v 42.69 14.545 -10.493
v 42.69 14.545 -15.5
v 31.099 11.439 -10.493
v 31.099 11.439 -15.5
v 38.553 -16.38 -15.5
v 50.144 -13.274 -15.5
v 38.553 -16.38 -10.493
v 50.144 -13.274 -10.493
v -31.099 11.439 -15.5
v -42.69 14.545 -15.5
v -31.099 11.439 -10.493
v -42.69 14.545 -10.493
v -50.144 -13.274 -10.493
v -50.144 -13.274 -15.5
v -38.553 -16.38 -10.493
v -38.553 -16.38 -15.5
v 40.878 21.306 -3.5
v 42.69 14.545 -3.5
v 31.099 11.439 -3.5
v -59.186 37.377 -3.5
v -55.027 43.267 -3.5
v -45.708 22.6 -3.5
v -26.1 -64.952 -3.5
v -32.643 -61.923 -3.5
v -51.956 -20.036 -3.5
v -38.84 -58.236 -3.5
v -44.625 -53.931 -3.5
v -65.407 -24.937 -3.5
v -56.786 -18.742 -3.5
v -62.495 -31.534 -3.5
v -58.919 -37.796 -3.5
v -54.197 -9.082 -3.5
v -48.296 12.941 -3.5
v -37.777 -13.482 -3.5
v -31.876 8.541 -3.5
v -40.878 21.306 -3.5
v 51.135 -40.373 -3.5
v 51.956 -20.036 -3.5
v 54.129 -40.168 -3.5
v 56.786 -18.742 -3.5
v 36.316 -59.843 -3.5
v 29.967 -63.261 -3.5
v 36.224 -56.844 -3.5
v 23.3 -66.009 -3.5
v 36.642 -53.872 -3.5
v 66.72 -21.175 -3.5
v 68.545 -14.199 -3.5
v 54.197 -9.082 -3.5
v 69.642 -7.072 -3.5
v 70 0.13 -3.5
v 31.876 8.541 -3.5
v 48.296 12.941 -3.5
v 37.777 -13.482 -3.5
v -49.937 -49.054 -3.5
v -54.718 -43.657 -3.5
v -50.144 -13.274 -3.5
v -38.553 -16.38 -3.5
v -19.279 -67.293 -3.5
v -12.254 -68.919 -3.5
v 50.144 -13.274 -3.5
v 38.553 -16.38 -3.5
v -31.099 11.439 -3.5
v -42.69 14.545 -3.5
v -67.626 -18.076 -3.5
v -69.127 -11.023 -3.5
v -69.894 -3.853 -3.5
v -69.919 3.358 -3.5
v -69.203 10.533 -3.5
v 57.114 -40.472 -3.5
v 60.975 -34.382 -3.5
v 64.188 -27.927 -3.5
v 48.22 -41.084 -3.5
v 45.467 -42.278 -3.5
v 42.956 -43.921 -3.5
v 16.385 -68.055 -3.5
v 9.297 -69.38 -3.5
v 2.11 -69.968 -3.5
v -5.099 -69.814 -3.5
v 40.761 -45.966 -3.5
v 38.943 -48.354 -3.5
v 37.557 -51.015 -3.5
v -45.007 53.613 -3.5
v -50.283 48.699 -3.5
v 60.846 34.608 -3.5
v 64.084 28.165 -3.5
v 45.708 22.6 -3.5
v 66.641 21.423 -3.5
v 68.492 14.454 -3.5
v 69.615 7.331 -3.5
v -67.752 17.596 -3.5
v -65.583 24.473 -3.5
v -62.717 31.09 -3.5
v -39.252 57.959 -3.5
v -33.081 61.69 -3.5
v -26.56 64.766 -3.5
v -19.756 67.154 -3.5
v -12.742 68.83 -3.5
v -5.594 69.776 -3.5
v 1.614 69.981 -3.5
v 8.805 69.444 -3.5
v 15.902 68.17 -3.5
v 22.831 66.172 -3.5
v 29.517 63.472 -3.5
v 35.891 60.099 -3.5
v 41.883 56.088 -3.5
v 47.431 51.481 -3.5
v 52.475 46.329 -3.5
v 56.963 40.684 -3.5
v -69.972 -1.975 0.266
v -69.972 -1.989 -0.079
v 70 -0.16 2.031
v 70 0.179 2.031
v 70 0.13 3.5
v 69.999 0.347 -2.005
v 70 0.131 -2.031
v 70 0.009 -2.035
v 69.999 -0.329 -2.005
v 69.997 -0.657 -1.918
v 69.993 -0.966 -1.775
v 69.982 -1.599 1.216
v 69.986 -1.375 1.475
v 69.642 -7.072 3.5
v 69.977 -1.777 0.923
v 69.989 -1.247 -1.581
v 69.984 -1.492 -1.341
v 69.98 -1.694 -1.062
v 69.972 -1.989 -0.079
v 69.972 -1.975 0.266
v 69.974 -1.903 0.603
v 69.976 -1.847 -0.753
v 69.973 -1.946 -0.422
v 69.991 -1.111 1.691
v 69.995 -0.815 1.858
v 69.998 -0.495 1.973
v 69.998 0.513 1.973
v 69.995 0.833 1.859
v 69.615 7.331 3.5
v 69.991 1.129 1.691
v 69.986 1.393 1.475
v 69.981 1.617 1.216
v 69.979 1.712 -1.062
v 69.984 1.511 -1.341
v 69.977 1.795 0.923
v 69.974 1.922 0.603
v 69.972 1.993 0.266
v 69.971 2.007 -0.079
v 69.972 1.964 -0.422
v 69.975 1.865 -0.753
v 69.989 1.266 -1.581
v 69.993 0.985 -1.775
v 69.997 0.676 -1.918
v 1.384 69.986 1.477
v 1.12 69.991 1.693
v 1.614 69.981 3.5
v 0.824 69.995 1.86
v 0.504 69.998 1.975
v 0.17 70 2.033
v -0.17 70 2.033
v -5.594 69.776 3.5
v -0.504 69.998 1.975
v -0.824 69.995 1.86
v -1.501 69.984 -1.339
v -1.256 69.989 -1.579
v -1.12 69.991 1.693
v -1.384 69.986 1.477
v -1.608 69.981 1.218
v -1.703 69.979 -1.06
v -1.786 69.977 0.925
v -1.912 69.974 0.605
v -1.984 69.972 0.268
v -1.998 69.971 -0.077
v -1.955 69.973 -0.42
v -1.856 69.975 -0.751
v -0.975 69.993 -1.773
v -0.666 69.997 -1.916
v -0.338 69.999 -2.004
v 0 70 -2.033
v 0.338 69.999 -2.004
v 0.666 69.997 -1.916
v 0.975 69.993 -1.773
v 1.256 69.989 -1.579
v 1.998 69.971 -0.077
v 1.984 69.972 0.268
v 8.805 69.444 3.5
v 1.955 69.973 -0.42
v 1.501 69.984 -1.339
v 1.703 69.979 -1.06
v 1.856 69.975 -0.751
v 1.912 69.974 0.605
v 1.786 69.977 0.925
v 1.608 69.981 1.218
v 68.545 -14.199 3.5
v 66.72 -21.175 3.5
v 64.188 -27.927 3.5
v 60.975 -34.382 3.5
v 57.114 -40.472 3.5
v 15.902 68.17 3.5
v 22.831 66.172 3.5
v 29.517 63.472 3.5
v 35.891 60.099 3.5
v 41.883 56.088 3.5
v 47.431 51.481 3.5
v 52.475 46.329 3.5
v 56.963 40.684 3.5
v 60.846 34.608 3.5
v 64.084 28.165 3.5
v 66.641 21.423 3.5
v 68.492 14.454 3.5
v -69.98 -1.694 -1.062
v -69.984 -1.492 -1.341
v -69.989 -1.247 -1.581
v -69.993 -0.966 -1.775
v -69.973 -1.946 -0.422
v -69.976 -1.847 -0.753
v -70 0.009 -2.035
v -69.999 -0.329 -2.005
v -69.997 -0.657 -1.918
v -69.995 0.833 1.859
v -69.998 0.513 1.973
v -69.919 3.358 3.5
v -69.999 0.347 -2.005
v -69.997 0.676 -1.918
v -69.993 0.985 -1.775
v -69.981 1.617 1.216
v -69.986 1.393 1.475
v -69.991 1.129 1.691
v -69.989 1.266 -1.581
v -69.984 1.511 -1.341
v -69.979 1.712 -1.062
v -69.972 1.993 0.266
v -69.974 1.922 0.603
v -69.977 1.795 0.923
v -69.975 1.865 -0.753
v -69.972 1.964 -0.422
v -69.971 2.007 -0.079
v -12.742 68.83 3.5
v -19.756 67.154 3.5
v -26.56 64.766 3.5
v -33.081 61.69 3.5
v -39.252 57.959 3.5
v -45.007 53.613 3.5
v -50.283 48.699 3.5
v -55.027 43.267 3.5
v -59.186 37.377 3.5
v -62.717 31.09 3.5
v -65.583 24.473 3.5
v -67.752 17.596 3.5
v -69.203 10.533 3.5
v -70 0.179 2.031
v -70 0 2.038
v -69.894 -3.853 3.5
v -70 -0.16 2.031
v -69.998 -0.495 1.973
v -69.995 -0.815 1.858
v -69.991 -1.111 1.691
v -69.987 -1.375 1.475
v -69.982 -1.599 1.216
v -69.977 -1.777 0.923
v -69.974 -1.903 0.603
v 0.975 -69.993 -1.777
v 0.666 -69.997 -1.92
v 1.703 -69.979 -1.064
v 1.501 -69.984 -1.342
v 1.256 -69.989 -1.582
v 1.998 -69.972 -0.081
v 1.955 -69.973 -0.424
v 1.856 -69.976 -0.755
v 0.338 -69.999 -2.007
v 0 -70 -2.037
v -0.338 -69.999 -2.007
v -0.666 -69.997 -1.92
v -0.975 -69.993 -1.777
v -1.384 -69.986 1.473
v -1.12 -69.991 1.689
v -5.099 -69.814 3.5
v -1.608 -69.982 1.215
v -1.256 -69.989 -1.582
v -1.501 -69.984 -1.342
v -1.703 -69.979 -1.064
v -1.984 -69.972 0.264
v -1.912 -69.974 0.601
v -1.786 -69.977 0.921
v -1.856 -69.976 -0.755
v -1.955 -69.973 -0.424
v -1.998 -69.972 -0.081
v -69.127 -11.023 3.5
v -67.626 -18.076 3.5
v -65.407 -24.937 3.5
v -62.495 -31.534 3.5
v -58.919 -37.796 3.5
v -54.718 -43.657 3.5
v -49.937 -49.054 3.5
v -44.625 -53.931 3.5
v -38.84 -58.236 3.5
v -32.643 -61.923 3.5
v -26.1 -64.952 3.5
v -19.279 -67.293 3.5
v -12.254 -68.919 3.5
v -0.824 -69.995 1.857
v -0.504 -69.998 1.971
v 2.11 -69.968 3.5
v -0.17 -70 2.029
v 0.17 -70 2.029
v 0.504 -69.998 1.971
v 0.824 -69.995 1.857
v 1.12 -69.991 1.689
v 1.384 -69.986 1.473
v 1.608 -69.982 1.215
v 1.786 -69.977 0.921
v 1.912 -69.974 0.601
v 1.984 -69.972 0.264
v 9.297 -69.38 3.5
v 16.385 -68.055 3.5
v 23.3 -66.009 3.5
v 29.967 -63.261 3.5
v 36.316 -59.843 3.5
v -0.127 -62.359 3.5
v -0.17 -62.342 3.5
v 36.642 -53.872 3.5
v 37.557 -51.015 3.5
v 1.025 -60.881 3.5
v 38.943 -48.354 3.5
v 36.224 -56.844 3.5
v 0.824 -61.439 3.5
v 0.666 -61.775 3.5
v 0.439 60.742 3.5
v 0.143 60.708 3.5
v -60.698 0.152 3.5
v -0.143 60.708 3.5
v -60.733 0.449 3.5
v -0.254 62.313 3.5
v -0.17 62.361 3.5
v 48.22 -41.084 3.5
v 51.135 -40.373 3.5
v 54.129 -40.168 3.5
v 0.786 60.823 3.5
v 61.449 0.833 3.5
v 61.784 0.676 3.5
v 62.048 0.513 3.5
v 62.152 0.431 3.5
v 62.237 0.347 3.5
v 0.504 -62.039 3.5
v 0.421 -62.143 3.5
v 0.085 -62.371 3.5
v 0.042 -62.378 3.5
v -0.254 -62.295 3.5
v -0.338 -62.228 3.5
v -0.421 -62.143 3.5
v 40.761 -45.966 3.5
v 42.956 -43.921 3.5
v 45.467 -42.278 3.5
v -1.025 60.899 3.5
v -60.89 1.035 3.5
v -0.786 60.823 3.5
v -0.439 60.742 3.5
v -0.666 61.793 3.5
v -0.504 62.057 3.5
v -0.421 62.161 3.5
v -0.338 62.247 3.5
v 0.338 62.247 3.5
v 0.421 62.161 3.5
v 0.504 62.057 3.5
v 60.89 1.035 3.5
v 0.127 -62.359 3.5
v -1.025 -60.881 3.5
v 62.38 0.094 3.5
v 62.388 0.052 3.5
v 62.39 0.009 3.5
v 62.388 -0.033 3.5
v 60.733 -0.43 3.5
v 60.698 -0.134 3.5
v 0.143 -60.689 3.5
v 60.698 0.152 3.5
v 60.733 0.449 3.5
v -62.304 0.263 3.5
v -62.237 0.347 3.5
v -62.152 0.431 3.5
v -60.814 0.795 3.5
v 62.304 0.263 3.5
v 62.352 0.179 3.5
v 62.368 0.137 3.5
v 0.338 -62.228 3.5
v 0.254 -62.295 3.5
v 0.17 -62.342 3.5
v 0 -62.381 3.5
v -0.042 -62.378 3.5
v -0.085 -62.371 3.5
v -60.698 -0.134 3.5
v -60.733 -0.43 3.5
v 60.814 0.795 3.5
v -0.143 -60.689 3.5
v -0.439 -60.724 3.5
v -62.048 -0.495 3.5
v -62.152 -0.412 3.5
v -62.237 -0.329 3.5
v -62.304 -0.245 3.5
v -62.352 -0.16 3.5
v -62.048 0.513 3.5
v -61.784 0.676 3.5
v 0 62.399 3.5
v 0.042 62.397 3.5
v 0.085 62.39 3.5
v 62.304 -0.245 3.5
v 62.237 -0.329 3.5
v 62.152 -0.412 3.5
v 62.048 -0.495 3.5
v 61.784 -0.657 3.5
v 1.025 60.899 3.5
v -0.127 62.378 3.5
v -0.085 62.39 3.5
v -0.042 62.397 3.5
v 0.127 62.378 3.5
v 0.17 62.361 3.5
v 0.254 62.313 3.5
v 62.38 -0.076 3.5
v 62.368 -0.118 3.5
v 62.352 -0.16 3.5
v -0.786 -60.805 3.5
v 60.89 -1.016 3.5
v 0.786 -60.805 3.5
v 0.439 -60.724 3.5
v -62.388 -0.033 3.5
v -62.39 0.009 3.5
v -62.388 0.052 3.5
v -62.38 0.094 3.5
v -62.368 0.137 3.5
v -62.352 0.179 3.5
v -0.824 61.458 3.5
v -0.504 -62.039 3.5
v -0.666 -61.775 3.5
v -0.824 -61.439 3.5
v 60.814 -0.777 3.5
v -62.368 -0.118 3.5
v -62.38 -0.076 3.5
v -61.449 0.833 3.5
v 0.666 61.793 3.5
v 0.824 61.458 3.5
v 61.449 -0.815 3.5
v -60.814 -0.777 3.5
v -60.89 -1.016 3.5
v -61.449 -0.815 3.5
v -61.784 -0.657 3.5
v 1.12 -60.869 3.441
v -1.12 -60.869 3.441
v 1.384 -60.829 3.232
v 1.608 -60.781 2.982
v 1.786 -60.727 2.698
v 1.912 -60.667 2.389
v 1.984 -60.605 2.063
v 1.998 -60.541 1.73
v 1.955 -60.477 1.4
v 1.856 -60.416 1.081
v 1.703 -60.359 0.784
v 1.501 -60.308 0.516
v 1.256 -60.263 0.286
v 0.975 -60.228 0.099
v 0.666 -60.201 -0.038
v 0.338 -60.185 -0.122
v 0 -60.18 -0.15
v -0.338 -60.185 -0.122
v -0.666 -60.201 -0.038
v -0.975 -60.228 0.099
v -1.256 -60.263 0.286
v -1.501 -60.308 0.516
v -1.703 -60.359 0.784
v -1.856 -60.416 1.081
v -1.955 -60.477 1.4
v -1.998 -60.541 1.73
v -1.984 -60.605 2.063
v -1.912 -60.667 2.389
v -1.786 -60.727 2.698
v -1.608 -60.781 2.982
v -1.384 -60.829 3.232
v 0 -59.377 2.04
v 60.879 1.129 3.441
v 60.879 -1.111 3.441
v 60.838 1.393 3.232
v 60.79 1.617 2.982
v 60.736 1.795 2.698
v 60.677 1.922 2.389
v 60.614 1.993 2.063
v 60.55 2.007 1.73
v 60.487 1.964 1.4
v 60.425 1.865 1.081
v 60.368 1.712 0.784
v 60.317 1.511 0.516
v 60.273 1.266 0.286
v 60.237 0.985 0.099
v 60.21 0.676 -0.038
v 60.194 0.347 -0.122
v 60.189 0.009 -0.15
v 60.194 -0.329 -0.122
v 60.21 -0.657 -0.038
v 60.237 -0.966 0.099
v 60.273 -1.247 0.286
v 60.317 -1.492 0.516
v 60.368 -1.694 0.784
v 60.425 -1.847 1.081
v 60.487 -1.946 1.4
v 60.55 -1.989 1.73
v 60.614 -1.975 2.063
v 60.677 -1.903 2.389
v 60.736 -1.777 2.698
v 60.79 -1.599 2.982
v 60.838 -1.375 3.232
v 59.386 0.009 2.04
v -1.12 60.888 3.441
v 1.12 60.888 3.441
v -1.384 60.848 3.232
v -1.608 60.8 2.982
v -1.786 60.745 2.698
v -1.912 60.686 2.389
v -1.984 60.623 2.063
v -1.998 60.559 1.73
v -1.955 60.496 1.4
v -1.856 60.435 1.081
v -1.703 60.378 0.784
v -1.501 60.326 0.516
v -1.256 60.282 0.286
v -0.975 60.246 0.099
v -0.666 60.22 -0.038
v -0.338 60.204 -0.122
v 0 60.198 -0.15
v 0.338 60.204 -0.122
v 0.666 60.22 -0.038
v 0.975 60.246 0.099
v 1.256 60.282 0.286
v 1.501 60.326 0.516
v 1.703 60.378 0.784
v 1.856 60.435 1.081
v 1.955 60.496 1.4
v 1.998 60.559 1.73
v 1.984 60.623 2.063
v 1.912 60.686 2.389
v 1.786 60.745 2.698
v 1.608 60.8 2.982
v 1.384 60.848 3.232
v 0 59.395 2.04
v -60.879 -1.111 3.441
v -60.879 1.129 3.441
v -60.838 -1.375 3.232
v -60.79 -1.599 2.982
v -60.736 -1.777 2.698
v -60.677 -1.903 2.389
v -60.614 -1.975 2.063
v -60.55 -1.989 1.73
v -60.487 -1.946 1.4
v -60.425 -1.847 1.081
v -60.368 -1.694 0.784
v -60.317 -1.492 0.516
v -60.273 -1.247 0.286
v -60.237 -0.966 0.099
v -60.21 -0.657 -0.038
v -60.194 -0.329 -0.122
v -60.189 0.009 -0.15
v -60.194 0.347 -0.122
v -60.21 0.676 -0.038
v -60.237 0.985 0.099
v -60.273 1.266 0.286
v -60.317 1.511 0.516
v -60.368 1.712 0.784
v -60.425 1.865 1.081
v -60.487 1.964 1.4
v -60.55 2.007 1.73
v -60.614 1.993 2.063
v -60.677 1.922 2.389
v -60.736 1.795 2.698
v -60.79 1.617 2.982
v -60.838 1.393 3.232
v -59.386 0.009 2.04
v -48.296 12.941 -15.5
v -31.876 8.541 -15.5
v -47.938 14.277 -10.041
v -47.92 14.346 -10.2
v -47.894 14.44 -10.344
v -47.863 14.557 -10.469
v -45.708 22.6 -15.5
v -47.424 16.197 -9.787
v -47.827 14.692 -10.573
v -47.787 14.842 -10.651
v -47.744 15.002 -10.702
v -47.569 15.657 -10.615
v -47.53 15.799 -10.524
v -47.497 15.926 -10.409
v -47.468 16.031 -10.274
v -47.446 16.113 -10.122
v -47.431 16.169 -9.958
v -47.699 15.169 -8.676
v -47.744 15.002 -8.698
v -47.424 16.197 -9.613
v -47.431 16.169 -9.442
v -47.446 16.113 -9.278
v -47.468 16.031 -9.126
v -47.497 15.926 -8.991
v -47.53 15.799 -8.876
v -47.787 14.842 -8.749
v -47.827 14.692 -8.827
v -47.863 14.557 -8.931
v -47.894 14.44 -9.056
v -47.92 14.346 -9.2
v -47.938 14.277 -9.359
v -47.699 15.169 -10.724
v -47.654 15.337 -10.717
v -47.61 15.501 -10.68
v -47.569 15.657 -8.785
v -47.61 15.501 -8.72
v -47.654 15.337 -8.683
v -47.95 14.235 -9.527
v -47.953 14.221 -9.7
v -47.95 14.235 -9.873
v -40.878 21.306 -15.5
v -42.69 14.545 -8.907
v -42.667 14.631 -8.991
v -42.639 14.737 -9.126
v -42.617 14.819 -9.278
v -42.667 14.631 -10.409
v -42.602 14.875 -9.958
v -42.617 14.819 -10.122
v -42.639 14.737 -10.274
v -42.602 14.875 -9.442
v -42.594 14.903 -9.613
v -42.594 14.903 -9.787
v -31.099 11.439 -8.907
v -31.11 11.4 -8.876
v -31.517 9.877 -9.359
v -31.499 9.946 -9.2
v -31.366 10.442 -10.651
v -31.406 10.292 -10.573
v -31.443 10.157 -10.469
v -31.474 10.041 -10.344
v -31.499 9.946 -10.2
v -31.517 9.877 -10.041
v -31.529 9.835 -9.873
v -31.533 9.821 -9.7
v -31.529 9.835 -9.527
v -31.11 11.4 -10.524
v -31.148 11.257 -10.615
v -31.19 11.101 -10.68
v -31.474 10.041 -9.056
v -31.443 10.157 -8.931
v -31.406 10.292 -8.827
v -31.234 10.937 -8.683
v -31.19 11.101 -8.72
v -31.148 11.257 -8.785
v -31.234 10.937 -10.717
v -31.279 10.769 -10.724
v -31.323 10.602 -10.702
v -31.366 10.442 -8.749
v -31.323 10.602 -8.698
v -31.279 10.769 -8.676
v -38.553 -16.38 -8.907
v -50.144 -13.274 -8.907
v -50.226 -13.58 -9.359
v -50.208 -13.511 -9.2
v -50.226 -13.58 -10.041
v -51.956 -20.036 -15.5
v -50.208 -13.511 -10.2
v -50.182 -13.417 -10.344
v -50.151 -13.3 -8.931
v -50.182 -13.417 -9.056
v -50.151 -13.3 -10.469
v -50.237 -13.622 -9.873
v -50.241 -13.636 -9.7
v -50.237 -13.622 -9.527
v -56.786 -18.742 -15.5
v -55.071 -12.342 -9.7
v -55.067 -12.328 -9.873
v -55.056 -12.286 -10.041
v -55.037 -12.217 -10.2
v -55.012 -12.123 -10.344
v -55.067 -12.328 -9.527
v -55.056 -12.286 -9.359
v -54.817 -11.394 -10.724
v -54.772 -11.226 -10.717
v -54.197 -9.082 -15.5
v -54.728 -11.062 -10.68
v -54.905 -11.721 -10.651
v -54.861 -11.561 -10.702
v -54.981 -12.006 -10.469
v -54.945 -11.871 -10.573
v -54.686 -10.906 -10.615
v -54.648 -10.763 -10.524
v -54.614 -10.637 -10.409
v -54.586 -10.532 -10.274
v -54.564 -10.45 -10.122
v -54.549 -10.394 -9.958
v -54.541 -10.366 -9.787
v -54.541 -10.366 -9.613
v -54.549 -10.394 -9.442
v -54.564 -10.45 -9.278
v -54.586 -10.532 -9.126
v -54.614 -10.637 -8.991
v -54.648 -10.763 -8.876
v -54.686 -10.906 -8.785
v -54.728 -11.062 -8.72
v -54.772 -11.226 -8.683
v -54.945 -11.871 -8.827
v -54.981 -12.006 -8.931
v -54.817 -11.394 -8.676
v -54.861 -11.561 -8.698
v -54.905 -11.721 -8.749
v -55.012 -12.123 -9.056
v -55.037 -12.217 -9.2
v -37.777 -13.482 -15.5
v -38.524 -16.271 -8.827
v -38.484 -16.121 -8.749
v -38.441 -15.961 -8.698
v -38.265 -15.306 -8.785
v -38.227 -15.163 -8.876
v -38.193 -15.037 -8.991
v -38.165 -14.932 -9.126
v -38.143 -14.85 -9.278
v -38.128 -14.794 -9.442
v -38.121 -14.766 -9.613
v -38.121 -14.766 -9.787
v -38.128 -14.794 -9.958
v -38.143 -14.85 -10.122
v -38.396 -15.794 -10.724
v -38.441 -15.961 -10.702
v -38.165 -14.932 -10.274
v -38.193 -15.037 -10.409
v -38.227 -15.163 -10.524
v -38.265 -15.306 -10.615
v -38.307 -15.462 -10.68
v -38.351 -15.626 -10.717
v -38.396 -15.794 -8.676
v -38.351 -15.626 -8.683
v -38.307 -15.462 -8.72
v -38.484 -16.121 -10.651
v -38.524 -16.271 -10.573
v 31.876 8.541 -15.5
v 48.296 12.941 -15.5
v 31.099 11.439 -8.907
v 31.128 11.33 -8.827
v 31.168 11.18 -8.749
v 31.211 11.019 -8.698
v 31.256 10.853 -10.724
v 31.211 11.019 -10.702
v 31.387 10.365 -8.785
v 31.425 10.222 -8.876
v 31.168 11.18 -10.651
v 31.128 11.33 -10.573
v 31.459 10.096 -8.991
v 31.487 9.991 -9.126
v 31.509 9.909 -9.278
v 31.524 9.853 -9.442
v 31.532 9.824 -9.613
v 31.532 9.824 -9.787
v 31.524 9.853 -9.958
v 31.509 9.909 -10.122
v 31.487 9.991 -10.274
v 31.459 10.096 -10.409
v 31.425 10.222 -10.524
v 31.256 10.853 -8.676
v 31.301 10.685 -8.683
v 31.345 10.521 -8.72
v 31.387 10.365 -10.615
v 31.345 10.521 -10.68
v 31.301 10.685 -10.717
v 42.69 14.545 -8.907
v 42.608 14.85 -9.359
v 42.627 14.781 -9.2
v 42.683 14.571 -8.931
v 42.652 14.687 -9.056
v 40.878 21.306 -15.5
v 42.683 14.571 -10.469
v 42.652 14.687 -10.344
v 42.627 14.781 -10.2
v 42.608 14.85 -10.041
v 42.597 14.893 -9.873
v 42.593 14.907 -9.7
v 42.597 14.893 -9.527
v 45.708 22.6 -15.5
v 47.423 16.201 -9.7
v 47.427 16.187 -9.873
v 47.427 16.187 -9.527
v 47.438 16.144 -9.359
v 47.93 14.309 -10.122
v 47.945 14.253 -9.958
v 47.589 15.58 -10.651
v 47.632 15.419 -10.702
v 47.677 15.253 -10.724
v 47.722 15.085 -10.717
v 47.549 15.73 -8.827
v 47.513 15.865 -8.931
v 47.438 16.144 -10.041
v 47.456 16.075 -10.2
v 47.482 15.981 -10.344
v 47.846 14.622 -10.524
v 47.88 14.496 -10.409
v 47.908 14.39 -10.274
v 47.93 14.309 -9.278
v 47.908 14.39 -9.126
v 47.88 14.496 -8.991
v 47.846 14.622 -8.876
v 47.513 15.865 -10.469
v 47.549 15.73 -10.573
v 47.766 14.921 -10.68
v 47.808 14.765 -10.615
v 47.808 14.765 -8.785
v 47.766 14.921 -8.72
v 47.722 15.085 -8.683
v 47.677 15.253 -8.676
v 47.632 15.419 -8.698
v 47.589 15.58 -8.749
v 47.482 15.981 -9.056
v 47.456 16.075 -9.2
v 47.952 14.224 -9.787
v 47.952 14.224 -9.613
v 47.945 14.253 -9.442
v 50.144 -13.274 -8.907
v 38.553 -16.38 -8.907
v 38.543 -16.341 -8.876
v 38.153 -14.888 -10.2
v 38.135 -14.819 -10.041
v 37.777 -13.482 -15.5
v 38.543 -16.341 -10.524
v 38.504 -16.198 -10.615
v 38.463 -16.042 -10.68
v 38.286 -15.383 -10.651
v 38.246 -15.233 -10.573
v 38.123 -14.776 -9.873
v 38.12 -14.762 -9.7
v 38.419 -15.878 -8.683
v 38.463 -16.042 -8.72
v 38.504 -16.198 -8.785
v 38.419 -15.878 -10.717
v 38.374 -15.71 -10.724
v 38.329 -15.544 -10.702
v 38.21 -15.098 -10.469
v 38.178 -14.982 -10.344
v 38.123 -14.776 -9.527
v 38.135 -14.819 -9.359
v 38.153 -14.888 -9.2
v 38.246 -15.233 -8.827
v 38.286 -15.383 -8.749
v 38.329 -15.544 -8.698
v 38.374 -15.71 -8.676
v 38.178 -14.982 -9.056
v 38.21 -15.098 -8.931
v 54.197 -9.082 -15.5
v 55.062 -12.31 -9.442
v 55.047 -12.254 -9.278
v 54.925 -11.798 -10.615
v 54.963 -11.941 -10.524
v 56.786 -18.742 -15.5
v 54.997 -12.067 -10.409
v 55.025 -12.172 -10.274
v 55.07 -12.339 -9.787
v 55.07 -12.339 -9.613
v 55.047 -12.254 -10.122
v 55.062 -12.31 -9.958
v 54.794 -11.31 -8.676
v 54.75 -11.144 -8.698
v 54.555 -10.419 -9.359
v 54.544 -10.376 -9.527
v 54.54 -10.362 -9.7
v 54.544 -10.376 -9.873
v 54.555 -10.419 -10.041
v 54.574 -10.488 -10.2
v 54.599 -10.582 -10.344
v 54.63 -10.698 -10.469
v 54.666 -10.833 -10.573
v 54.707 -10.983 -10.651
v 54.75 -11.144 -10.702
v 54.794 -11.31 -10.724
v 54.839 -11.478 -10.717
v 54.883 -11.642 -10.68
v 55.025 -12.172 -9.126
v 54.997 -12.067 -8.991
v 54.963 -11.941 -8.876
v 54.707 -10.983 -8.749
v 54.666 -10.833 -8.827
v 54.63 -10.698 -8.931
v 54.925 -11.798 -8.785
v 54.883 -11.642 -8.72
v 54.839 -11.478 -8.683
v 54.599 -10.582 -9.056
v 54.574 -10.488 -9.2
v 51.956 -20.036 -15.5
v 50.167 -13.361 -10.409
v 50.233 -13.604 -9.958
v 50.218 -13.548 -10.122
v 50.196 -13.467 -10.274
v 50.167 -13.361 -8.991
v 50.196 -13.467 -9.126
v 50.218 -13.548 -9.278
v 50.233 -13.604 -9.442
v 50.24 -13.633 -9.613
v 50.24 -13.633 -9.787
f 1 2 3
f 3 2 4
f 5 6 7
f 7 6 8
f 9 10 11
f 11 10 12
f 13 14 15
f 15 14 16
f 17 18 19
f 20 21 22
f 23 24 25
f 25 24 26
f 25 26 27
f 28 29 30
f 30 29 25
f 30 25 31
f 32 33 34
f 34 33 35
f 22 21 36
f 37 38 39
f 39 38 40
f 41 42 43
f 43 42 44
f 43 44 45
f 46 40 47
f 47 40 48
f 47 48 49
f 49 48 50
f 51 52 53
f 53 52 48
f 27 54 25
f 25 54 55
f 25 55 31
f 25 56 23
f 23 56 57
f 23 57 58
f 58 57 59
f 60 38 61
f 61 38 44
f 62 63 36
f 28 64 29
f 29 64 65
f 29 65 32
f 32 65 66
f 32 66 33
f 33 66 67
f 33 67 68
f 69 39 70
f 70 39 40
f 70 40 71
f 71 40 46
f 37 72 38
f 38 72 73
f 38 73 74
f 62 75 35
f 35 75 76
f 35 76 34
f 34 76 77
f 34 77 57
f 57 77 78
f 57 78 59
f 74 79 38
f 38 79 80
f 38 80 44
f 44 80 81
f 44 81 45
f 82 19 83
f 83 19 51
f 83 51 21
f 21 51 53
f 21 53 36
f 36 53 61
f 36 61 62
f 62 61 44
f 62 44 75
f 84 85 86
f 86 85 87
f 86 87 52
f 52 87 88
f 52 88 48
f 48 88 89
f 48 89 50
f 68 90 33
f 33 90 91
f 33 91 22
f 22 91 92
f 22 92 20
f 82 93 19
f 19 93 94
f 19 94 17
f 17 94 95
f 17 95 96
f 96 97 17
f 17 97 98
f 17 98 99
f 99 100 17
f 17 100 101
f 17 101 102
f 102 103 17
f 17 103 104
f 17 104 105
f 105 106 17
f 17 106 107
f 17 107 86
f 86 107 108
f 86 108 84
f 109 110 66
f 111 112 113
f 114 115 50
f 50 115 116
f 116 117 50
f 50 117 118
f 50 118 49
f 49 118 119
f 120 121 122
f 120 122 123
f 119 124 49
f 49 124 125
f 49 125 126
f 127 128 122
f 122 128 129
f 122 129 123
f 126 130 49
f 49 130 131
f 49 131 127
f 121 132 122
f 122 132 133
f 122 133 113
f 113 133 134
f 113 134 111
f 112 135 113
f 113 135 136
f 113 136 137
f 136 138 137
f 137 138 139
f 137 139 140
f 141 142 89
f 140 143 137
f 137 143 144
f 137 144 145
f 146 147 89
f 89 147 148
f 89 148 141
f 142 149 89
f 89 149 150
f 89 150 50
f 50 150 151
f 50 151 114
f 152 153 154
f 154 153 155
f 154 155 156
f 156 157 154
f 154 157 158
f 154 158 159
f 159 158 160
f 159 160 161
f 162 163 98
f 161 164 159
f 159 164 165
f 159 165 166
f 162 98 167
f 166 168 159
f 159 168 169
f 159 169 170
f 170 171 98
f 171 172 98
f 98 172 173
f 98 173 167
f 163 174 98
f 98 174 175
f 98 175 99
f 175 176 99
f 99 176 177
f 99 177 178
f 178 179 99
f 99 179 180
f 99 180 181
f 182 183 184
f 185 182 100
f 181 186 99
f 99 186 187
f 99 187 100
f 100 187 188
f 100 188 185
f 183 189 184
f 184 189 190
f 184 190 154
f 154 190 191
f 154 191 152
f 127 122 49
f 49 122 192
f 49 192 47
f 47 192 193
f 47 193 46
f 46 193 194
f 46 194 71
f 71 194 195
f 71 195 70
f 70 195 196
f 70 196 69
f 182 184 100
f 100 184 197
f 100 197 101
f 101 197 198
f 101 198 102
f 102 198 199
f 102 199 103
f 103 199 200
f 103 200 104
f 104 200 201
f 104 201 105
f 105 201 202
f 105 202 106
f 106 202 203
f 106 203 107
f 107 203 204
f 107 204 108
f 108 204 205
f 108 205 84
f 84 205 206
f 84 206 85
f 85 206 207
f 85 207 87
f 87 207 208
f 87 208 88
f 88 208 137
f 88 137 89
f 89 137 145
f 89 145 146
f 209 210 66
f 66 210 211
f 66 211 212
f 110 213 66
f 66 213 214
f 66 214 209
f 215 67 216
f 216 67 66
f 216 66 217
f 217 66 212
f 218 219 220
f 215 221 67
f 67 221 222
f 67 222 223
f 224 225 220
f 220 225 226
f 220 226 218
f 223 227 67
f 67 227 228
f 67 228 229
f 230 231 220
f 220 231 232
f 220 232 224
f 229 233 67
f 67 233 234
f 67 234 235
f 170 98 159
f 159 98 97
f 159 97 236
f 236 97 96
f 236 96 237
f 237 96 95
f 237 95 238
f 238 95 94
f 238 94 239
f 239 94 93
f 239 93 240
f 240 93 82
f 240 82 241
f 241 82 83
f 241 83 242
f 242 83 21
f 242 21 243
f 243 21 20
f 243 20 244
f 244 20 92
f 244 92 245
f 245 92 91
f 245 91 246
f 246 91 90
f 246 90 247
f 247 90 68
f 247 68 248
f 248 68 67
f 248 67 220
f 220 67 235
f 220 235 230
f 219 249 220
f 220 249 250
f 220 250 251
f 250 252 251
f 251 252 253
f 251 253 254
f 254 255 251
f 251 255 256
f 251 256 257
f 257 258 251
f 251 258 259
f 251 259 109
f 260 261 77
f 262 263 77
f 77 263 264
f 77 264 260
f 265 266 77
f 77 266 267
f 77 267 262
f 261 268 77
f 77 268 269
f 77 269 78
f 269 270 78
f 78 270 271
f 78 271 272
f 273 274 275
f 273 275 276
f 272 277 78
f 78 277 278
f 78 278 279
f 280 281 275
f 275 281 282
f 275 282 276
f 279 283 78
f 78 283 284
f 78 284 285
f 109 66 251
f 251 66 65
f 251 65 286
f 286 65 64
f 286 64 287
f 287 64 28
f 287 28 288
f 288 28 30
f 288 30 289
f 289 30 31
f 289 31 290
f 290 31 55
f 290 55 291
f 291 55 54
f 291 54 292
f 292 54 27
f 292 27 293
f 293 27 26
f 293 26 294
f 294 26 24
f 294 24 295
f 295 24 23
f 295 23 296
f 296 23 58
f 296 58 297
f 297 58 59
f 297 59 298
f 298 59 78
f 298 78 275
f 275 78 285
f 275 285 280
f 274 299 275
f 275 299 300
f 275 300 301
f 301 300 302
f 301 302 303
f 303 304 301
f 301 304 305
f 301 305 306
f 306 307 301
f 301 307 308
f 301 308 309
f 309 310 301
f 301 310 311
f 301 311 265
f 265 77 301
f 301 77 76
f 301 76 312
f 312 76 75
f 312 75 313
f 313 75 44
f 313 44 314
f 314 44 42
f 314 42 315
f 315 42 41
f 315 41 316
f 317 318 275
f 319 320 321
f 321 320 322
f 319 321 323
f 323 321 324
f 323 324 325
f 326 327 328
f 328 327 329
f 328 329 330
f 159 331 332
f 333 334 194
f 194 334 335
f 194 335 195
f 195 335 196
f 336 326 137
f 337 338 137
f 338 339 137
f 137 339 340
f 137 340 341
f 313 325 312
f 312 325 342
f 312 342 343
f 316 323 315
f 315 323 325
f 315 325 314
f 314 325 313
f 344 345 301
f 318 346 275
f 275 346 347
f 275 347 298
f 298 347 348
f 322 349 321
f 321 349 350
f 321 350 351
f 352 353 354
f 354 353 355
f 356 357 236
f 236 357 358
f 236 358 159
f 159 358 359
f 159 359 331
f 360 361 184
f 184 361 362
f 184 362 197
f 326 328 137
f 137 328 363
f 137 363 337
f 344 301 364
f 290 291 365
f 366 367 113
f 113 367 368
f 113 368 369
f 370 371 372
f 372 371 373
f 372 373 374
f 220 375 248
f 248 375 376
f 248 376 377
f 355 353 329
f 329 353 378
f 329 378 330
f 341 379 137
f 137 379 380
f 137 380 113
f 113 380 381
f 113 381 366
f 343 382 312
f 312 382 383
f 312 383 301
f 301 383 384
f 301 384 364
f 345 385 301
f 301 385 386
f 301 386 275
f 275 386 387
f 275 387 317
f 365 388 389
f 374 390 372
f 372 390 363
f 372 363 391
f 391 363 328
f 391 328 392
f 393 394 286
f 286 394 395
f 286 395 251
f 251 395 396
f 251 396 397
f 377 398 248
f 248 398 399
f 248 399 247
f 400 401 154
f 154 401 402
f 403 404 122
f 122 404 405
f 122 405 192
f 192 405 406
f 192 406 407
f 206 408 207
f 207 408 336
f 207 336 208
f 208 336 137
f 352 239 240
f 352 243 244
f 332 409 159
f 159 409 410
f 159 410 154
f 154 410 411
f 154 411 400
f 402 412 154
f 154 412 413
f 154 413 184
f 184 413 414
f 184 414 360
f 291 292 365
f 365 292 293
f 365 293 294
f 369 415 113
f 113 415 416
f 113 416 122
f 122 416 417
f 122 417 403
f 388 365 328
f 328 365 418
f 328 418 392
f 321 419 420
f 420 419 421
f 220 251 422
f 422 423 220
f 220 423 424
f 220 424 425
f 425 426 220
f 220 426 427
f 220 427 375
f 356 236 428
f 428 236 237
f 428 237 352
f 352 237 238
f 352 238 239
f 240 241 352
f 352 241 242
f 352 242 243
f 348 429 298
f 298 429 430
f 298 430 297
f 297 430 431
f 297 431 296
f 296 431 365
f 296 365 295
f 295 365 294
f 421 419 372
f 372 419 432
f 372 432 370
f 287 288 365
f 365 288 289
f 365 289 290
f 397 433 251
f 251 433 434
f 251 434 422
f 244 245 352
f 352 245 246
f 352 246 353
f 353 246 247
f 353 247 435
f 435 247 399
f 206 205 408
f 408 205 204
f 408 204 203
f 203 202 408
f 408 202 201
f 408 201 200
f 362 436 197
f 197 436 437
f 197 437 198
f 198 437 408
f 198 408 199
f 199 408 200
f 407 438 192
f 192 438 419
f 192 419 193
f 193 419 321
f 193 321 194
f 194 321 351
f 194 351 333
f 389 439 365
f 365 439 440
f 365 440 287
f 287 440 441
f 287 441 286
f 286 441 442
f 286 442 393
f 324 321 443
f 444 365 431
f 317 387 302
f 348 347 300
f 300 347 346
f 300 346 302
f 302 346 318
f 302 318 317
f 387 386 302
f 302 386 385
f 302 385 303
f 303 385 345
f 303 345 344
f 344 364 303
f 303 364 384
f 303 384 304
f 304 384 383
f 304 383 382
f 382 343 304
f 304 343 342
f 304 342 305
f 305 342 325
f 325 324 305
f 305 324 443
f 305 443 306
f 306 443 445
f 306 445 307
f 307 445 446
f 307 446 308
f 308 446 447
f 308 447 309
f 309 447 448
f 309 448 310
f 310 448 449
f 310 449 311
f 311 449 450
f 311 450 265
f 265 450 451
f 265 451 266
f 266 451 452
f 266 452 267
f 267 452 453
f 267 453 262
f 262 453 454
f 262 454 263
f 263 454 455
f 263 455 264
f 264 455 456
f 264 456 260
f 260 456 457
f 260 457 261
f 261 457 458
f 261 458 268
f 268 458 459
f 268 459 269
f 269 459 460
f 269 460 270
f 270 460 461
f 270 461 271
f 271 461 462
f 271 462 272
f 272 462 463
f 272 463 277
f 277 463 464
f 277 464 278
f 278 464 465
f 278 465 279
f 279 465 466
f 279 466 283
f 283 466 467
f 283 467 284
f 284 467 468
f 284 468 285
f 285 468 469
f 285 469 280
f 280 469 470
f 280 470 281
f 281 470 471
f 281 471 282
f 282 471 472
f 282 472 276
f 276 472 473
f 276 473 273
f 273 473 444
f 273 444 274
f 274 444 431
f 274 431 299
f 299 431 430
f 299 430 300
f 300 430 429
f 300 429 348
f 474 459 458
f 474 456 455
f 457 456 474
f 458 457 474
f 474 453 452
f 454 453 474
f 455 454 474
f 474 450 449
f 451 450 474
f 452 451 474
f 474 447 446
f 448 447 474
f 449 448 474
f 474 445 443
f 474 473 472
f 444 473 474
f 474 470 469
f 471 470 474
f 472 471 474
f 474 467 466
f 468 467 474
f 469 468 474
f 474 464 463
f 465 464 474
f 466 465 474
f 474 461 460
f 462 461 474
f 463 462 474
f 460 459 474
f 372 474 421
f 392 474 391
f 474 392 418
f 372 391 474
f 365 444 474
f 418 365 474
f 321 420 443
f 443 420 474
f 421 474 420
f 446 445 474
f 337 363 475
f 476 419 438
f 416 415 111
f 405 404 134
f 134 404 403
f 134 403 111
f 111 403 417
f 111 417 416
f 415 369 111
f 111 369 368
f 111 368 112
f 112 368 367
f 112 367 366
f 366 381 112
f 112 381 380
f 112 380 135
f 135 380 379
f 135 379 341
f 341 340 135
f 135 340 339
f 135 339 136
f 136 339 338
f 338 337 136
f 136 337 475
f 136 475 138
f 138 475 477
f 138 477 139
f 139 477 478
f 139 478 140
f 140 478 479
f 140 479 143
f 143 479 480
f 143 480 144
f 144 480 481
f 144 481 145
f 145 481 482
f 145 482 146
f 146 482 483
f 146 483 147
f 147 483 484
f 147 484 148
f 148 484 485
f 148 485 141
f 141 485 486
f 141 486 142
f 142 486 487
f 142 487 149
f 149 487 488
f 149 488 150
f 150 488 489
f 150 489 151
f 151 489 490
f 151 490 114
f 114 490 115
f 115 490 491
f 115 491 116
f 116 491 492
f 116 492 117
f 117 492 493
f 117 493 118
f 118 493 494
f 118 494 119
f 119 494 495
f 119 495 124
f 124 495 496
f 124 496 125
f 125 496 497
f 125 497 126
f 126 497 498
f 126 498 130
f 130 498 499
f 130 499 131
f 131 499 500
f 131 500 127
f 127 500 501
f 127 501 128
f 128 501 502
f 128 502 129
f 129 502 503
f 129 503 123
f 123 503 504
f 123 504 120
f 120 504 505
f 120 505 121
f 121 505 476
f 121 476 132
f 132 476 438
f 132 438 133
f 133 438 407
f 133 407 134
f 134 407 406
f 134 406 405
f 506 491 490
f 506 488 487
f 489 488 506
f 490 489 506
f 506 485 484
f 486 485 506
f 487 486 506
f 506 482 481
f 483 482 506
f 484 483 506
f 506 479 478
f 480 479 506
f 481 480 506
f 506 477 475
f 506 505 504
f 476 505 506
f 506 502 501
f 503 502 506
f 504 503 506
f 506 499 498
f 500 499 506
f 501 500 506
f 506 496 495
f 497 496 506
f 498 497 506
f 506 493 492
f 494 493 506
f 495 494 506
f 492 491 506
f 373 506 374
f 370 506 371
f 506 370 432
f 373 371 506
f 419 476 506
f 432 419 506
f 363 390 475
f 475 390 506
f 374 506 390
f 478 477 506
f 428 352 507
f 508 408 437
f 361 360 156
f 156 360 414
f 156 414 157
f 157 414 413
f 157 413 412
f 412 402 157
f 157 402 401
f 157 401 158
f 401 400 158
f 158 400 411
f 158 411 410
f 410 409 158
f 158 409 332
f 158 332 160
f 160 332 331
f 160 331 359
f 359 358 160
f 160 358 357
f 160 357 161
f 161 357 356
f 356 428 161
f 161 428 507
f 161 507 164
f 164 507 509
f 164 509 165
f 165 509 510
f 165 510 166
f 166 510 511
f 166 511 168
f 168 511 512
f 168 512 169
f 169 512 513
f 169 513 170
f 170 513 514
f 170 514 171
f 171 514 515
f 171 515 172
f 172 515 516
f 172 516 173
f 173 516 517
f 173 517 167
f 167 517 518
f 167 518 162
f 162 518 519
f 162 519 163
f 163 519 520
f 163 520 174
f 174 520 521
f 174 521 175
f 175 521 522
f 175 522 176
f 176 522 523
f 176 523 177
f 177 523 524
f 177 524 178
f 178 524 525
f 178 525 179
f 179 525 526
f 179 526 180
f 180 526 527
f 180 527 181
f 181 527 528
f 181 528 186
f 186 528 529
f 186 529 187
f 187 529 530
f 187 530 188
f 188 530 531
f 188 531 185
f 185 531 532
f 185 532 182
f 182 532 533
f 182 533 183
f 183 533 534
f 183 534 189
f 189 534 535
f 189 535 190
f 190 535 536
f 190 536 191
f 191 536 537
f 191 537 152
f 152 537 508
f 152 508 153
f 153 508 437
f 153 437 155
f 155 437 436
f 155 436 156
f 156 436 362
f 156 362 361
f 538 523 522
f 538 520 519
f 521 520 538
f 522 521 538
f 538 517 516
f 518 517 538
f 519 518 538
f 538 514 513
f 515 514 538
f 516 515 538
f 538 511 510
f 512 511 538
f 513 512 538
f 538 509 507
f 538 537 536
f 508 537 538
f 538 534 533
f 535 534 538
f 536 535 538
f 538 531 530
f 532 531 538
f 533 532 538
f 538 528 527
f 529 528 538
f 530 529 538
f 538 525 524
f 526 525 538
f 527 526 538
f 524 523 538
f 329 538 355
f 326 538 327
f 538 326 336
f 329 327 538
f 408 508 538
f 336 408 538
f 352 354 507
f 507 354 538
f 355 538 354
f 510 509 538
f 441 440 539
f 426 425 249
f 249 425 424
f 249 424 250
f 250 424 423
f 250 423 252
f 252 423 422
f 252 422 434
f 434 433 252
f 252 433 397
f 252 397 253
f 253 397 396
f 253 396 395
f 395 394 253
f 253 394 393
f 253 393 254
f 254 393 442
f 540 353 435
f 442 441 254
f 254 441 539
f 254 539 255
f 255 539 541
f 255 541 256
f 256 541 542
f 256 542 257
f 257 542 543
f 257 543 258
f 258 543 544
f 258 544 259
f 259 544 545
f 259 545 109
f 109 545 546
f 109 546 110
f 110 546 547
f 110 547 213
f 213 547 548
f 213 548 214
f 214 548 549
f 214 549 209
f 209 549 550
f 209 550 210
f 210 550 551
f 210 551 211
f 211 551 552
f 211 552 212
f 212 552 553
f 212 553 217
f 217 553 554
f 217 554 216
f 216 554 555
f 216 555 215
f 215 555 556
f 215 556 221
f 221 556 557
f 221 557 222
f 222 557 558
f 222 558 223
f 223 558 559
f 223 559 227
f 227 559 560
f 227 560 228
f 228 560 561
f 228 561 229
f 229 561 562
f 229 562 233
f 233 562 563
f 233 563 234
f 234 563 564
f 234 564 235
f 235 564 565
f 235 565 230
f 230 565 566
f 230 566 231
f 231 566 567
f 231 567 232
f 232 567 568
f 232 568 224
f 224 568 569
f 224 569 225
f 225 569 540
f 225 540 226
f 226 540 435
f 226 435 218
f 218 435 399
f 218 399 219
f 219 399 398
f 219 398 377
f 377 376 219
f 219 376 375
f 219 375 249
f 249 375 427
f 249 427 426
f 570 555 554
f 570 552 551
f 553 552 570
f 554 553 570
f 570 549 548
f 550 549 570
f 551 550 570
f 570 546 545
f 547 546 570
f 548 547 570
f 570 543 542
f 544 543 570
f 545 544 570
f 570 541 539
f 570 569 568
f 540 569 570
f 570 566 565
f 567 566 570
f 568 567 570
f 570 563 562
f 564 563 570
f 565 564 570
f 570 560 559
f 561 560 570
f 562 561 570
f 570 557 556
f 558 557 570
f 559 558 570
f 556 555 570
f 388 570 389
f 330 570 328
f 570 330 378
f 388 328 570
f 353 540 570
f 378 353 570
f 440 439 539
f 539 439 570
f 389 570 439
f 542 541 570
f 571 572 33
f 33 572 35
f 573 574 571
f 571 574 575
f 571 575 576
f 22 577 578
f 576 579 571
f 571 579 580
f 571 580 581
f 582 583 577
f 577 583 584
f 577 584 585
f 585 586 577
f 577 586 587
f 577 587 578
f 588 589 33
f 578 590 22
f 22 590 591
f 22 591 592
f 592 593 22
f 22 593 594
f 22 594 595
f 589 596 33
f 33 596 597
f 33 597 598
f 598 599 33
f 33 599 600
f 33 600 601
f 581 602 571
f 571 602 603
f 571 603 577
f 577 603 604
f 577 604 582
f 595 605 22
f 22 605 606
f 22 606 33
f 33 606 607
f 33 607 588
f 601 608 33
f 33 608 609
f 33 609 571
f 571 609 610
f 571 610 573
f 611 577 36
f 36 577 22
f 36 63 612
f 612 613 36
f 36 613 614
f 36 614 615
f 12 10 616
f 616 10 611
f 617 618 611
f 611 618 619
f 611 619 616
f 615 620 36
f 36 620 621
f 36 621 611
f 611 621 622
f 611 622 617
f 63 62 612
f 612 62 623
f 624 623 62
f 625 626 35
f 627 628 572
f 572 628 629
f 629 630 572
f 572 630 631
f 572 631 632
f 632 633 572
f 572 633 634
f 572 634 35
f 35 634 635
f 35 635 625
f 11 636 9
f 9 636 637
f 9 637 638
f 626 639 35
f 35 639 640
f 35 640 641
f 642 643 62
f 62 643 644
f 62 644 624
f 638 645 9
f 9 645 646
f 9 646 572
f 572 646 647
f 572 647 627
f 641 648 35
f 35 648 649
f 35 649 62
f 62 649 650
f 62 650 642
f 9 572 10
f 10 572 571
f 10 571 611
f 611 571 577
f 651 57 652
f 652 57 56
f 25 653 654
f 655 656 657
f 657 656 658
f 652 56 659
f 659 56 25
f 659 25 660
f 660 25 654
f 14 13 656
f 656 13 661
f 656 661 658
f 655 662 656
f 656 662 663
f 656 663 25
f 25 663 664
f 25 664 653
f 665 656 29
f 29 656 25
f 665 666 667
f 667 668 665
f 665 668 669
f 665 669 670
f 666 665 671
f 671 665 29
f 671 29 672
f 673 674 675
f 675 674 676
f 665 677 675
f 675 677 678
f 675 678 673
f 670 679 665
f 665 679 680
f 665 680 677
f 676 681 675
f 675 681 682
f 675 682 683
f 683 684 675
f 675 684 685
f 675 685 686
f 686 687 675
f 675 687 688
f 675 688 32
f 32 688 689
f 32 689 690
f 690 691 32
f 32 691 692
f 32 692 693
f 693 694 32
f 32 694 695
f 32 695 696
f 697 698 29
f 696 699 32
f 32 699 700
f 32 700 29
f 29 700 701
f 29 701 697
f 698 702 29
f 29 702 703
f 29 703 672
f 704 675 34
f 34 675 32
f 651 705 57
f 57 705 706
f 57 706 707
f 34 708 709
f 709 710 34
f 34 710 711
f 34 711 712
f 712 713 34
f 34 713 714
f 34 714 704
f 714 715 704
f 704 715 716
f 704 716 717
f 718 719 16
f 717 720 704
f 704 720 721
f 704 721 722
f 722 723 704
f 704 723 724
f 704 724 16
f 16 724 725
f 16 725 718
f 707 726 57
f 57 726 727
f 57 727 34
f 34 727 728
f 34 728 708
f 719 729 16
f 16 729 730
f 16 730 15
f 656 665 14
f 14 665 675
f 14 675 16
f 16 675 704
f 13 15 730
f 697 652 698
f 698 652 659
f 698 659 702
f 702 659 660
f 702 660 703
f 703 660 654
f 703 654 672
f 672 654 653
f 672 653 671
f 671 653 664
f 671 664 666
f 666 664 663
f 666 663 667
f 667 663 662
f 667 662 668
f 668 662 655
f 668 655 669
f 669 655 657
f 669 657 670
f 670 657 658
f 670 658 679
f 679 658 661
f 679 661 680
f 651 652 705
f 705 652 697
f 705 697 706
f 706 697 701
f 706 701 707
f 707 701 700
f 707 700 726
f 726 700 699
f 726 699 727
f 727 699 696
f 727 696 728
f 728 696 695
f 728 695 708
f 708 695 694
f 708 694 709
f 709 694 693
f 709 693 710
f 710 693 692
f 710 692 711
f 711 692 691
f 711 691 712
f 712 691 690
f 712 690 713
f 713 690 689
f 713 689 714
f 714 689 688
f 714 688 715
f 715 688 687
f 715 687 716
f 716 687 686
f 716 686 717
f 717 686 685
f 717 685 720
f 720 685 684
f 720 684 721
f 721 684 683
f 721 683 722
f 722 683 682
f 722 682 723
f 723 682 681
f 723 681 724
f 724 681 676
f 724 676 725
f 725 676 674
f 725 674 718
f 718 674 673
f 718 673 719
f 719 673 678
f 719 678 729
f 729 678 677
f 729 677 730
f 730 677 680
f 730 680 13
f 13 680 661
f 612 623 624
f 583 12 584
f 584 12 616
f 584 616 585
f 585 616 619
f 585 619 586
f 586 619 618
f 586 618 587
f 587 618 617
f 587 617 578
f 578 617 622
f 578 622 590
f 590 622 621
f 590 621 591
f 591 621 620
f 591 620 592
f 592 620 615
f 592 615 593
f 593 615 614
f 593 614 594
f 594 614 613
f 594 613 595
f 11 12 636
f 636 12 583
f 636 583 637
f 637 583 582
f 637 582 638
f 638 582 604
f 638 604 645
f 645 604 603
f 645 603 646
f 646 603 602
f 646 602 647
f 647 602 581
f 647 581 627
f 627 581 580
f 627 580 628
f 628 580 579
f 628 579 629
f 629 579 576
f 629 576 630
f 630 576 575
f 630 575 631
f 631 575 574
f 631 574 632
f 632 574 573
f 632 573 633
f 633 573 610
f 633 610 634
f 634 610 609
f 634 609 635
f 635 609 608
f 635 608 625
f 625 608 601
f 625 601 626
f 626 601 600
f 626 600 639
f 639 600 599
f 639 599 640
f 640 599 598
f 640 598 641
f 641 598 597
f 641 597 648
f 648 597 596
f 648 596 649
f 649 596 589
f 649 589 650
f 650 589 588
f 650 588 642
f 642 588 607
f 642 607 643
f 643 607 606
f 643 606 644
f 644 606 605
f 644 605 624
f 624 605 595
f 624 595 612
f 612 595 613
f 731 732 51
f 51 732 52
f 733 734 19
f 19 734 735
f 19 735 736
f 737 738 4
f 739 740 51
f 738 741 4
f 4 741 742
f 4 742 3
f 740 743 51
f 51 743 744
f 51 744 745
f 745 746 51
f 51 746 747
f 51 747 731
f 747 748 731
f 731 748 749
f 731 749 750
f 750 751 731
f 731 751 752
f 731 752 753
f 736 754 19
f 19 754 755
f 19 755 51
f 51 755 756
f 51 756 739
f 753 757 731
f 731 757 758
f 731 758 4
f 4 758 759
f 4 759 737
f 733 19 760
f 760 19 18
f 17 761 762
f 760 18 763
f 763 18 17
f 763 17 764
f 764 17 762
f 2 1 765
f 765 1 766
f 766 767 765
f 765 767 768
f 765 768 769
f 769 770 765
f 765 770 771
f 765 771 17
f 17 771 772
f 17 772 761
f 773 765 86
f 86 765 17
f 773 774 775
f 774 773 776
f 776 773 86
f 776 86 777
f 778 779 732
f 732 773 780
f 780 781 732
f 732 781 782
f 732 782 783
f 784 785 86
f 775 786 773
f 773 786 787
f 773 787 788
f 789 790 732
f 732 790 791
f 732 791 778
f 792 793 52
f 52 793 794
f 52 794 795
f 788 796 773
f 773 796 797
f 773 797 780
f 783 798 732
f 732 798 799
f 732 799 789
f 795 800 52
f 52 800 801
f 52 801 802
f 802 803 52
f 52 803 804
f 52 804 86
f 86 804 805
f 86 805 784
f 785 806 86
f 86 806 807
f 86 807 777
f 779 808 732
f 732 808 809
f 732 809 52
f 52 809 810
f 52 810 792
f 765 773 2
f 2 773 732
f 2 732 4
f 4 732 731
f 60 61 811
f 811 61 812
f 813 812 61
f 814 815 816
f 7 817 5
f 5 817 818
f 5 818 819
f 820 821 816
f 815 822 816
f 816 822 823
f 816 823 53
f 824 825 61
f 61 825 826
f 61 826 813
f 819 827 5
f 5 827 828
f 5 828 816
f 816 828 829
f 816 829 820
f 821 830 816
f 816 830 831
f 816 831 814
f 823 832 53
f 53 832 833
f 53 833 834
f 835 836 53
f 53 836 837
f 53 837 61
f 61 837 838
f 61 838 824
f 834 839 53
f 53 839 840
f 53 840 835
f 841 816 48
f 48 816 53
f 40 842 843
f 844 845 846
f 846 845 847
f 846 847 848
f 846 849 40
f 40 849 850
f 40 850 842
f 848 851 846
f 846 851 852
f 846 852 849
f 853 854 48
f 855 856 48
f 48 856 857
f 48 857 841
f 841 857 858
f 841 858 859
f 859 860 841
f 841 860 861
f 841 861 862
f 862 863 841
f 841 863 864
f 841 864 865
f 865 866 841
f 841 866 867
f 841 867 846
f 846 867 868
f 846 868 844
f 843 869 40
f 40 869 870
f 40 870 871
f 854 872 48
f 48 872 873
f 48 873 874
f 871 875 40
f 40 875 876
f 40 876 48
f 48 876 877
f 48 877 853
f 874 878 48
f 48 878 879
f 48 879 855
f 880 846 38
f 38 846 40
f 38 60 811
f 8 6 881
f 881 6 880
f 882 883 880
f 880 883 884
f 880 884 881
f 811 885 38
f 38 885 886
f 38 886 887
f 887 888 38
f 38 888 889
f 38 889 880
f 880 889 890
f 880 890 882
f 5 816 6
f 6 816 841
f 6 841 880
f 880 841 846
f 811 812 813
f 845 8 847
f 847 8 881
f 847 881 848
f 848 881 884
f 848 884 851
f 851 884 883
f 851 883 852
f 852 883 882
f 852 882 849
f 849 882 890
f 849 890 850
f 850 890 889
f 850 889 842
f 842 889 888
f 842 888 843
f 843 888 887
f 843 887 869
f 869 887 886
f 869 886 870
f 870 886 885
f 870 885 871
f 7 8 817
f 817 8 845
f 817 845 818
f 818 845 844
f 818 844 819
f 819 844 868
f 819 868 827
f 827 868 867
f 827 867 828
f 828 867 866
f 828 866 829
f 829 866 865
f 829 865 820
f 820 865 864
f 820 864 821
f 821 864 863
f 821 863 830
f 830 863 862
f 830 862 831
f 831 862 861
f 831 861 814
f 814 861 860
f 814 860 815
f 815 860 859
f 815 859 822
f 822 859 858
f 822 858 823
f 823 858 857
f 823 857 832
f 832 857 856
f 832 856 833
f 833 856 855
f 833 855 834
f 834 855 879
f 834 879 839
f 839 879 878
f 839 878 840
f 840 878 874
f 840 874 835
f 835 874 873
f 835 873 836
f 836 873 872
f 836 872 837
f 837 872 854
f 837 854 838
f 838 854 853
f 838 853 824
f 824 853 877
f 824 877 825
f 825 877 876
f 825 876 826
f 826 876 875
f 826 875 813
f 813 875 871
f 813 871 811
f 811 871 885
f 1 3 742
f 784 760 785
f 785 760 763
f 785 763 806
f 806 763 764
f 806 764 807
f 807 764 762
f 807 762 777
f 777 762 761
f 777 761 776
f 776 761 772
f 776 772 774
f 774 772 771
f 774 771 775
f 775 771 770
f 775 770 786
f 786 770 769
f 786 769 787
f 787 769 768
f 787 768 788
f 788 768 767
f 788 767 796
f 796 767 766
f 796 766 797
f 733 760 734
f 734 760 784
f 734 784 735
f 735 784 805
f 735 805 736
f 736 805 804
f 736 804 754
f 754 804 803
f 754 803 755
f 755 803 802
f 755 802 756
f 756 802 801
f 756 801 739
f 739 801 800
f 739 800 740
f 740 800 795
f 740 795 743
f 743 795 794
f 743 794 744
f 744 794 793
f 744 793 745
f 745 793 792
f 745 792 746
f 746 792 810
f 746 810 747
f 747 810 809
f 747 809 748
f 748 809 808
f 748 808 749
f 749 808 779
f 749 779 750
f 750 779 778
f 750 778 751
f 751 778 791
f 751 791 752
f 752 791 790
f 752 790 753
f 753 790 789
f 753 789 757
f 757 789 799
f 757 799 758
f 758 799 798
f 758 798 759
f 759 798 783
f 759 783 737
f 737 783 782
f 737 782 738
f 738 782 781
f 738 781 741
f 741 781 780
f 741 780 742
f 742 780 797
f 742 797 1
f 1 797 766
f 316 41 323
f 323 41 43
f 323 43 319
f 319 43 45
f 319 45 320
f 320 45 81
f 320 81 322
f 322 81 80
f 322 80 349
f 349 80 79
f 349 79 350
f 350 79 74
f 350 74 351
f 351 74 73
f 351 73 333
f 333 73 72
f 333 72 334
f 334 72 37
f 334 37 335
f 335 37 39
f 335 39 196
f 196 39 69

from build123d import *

# Parameters (mm, degrees)
SKETCH1_R               = 70
BOSS_EXTRUDE1_DEPTH     = 3.5
BOSS_EXTRUDE2_DEPTH     = 12
M2_5_TAPPED_HOLE1_D     = 2.05
M2_5_TAPPED_HOLE1_DEPTH = 17
CUT_EXTRUDE4_START      = -12
CUT_EXTRUDE4_DEPTH      = 12


# Read off the part's stored shape, not the designer's step: CirPattern1
with BuildPart() as part:
    # Sketch1 → Boss-Extrude1 (new, symmetric)
    with BuildSketch(Plane.XY):
        Circle(SKETCH1_R)
    extrude(amount=BOSS_EXTRUDE1_DEPTH, both=True)

    # Sketch13 → Cut-Revolve1 (revolve, cut)
    with BuildSketch(Plane(origin=(0, 0, 0), x_dir=(0, 0, -1), z_dir=(1, 0, 0))):
        Polygon((-2.040406099, -59.376585203), (0.072455051, -70.377238659), (2.036555607, -70), (0.150362311, -60.17949722), align=None)
    revolve(axis=Axis((0, -70, 0), (0, 0.982050277997827, 0.18861932956192706)), mode=Mode.SUBTRACT)

    # CirPattern1 outline → CirPattern1 (revolve, cut)
    with BuildSketch(Plane(origin=(2.490740254, 0.009350069, 12.968088503), x_dir=(0, 1, 0), z_dir=(-0.188619329561927, 0, -0.982050277997827))):
        Polygon((0, 57.935114232), (2, 59.13683547), (2, 69.127313847), (0, 69.127313847), align=None)
    revolve(axis=Axis((2.490740254, 0.009350069, 12.968088503), (0.982050277997827, 0, -0.188619329561927)), mode=Mode.SUBTRACT)

    # CirPattern1 2 outline → CirPattern1 2 (revolve, cut)
    with BuildSketch(Plane(origin=(2e-08, 2.491072904, 12.969820451), x_dir=(1, 0, 0), z_dir=(0, 0.188619329561927, 0.982050277997827))):
        Polygon((0, 57.94429647), (2, 59.146017708), (2, 69.126976101), (0, 69.126976101), align=None)
    revolve(axis=Axis((2e-08, 2.491072904, 12.969820451), (0, 0.982050277997827, -0.188619329561927)), mode=Mode.SUBTRACT)

    # CirPattern1 3 outline → CirPattern1 3 (revolve, cut)
    with BuildSketch(Plane(origin=(-2.490740254, 0.009350089, 12.9680885), x_dir=(0, 1, 0), z_dir=(0.188619329561927, 0, -0.982050277997827))):
        Polygon((2, -69.127431112), (2, -59.136835451), (0, -57.935114213), (0, -69.127431112), align=None)
    revolve(axis=Axis((-2.490740254, 0.009350089, 12.9680885), (0.982050277997827, 0, 0.188619329561927)), mode=Mode.SUBTRACT)

    # Sketch4 → Boss-Extrude2 (add)
    with BuildSketch(Plane(origin=(0, 0, -3.5), x_dir=(-1, 0, 0), z_dir=(0, 0, -1))):
        Polygon((31.875552268, 8.541028488), (48.296291314, 12.940952255), (45.708100863, 22.600210518), (40.878471732, 21.306115293), (42.690205048, 14.544634508), (31.099095132, 11.438805967), align=None)
        Polygon((56.785555994, -18.741414847), (51.955926862, -20.035510073), (50.144193547, -13.274029289), (38.553083631, -16.37985783), (37.776626496, -13.482080351), (54.197365543, -9.082156584), align=None)
    boss_extrude2 = extrude(amount=BOSS_EXTRUDE2_DEPTH)

    # M2.5 Tapped Hole1
    with Locations(Plane(origin=(-48.296291314, 12.940952255, 0), x_dir=(0, 0, 1), z_dir=(-0.9659258262890691, 0.2588190451025179, 0))):
        with Locations((-9.7, 2.35), (-9.7, -25.15)):
            m2_5_tapped_hole1 = Hole(M2_5_TAPPED_HOLE1_D / 2, depth=M2_5_TAPPED_HOLE1_DEPTH)

    # Mirror1: Boss-Extrude2, M2.5 Tapped Hole1 across plane
    add(boss_extrude2.mirror(Plane(origin=(0, 0, 0), x_dir=(0, 0, 1), z_dir=(1, 0, 0))))
    add(m2_5_tapped_hole1.mirror(Plane(origin=(0, 0, 0), x_dir=(0, 0, 1), z_dir=(1, 0, 0))), mode=Mode.SUBTRACT)

    # Sketch7 → Cut-Extrude4 (cut)
    with BuildSketch(Plane(origin=(0, 0, -3.5), x_dir=(-1, 0, 0), z_dir=(0, 0, -1)).offset(CUT_EXTRUDE4_START)):
        with BuildLine():
            ThreePointArc((-57.113972469, -40.472140403), (-41.814961007, -44.896509701), (-36.315733397, -59.842856782))
            ThreePointArc((-36.315733397, -59.842856782), (-47.708318434, -51.224177419), (-57.113972469, -40.472140403))
        make_face()
    extrude(amount=CUT_EXTRUDE4_DEPTH, mode=Mode.SUBTRACT)


solid = part.part
